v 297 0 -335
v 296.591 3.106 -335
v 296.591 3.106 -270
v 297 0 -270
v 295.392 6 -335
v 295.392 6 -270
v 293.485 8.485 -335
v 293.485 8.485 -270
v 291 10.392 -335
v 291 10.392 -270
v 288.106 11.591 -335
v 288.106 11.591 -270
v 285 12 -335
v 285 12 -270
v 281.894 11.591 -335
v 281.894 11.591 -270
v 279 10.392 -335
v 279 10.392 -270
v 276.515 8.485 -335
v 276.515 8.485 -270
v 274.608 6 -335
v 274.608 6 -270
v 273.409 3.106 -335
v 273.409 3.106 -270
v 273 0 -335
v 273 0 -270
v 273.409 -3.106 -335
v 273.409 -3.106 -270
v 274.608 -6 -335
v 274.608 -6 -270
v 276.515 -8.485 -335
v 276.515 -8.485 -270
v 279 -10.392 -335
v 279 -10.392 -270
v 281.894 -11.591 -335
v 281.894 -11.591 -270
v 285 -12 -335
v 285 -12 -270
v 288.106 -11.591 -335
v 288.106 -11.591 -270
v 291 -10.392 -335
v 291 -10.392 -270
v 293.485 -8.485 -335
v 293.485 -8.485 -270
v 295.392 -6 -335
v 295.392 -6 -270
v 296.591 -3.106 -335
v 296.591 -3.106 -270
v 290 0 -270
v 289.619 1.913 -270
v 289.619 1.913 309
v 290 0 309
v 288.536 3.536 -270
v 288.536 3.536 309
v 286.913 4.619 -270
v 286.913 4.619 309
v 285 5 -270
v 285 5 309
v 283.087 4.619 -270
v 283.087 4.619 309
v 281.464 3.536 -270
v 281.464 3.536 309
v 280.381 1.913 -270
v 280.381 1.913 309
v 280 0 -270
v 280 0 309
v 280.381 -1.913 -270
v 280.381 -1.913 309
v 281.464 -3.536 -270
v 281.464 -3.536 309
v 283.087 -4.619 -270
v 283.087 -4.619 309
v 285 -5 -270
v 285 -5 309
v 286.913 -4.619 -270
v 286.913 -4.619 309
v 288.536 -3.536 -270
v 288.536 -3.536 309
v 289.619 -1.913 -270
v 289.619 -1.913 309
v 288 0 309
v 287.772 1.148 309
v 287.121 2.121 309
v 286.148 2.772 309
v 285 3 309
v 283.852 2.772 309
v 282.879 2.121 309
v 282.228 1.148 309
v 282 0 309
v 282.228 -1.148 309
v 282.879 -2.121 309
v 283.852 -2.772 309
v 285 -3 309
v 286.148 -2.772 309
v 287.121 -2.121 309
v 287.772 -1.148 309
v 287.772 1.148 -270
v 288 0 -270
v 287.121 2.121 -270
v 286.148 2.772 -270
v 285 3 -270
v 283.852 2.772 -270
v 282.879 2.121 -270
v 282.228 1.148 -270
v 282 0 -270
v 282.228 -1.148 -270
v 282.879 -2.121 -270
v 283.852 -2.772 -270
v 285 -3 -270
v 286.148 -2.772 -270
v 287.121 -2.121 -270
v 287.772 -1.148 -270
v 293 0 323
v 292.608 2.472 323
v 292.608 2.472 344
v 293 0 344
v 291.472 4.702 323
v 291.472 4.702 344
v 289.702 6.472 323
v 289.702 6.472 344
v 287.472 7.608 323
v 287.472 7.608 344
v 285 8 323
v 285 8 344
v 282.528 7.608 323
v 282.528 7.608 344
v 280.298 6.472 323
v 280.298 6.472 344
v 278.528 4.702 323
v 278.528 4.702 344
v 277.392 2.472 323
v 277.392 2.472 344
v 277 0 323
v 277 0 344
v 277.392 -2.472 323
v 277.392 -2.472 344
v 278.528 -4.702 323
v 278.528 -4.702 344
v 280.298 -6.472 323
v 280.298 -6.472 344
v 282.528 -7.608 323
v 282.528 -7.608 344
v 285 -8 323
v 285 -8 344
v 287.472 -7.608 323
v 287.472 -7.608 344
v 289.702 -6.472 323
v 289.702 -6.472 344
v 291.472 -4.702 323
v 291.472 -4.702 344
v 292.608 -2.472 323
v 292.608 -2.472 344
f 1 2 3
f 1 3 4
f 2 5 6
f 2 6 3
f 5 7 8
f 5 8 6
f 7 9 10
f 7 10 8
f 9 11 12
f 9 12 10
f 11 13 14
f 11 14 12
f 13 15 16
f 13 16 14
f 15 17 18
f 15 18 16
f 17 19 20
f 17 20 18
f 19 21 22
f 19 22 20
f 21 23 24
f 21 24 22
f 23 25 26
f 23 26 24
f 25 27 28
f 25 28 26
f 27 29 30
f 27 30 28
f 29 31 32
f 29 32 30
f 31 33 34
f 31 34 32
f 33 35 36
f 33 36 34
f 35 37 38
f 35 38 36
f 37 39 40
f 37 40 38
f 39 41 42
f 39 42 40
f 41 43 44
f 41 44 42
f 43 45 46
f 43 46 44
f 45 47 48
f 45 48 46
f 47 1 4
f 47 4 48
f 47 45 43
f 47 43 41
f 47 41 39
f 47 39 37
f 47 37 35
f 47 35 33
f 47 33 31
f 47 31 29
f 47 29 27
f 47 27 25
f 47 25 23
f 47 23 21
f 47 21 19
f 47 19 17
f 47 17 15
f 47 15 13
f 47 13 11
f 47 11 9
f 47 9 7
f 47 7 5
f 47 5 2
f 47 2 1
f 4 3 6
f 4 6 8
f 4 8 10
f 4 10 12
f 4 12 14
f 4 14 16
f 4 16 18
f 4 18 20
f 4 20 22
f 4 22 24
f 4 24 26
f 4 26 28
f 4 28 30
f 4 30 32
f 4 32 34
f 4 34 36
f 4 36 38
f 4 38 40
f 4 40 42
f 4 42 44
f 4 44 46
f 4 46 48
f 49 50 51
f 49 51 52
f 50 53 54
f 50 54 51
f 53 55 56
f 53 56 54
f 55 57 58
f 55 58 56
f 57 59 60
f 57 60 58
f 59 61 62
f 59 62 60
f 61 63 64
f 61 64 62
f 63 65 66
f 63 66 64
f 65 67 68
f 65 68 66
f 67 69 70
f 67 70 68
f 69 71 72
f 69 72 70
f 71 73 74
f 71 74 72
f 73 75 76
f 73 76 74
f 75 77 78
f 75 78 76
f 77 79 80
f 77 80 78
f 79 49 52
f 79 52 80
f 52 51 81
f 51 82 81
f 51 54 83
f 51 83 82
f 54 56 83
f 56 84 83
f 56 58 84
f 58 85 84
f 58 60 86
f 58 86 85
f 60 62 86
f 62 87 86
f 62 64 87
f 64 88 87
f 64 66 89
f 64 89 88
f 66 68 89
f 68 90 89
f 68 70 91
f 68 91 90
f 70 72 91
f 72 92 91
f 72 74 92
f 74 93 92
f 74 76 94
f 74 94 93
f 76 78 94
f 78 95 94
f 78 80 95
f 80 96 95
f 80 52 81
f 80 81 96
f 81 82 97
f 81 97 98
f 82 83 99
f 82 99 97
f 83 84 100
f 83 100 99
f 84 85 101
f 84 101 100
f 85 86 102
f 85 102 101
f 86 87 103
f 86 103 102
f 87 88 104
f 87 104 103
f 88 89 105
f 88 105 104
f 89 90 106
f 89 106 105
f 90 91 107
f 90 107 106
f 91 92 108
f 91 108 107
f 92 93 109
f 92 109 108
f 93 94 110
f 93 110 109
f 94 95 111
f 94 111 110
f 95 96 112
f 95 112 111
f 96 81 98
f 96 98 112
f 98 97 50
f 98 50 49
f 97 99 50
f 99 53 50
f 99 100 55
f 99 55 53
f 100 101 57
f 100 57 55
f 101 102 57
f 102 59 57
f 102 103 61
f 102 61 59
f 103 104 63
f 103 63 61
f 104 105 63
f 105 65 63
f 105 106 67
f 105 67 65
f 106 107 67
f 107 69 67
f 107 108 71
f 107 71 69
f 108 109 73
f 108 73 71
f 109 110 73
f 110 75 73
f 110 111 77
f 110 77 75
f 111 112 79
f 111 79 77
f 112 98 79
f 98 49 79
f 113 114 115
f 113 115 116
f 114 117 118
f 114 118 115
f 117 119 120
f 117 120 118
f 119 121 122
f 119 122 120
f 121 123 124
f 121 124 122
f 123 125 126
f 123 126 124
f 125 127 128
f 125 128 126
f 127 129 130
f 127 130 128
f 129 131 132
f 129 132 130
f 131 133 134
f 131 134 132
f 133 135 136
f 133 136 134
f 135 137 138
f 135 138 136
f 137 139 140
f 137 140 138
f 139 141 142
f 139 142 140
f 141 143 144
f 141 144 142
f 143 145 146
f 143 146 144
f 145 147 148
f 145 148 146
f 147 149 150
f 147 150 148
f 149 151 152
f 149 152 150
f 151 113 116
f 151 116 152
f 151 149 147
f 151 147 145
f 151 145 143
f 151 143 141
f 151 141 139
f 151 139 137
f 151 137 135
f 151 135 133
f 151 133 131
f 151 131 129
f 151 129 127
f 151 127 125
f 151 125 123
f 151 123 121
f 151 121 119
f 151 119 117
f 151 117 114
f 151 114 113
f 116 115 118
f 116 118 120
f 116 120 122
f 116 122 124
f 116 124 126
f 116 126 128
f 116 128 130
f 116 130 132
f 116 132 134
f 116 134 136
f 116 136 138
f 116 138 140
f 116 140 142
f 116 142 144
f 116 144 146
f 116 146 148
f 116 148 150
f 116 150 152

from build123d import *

# Parameters (mm, degrees)
EXTRUDE_START        = -335
EXTRUDE_SKETCH_1_R   = 12
EXTRUDE_1_DEPTH      = 65
EXTRUDE_START_2      = -270
EXTRUDE_SKETCH_2_R   = 5
EXTRUDE_SKETCH_2_R_2 = 3
EXTRUDE_2_DEPTH      = 579
EXTRUDE_START_3      = 323
EXTRUDE_SKETCH_3_R   = 8
EXTRUDE_3_DEPTH      = 21


with BuildPart() as part:
    # Extrude sketch 1 → Extrude 1 (new body)
    with BuildSketch(Plane.XY.offset(EXTRUDE_START)):
        with Locations((285, 0)):
            Circle(EXTRUDE_SKETCH_1_R)
    extrude(amount=EXTRUDE_1_DEPTH)


with BuildPart() as body_2:
    # Extrude sketch 2 → Extrude 2 (new body)
    with BuildSketch(Plane.XY.offset(EXTRUDE_START_2)):
        with Locations((285, 0)):
            Circle(EXTRUDE_SKETCH_2_R)
        with Locations((285, 0)):
            Circle(EXTRUDE_SKETCH_2_R_2, mode=Mode.SUBTRACT)
    extrude(amount=EXTRUDE_2_DEPTH)


with BuildPart() as body_3:
    # Extrude sketch 3 → Extrude 3 (new body)
    with BuildSketch(Plane.XY.offset(EXTRUDE_START_3)):
        with Locations(Location((285, 0, 0), (0, 0, 180))):
            Circle(EXTRUDE_SKETCH_3_R)
    extrude(amount=EXTRUDE_3_DEPTH)


solid = Compound([part.part, body_2.part, body_3.part])
